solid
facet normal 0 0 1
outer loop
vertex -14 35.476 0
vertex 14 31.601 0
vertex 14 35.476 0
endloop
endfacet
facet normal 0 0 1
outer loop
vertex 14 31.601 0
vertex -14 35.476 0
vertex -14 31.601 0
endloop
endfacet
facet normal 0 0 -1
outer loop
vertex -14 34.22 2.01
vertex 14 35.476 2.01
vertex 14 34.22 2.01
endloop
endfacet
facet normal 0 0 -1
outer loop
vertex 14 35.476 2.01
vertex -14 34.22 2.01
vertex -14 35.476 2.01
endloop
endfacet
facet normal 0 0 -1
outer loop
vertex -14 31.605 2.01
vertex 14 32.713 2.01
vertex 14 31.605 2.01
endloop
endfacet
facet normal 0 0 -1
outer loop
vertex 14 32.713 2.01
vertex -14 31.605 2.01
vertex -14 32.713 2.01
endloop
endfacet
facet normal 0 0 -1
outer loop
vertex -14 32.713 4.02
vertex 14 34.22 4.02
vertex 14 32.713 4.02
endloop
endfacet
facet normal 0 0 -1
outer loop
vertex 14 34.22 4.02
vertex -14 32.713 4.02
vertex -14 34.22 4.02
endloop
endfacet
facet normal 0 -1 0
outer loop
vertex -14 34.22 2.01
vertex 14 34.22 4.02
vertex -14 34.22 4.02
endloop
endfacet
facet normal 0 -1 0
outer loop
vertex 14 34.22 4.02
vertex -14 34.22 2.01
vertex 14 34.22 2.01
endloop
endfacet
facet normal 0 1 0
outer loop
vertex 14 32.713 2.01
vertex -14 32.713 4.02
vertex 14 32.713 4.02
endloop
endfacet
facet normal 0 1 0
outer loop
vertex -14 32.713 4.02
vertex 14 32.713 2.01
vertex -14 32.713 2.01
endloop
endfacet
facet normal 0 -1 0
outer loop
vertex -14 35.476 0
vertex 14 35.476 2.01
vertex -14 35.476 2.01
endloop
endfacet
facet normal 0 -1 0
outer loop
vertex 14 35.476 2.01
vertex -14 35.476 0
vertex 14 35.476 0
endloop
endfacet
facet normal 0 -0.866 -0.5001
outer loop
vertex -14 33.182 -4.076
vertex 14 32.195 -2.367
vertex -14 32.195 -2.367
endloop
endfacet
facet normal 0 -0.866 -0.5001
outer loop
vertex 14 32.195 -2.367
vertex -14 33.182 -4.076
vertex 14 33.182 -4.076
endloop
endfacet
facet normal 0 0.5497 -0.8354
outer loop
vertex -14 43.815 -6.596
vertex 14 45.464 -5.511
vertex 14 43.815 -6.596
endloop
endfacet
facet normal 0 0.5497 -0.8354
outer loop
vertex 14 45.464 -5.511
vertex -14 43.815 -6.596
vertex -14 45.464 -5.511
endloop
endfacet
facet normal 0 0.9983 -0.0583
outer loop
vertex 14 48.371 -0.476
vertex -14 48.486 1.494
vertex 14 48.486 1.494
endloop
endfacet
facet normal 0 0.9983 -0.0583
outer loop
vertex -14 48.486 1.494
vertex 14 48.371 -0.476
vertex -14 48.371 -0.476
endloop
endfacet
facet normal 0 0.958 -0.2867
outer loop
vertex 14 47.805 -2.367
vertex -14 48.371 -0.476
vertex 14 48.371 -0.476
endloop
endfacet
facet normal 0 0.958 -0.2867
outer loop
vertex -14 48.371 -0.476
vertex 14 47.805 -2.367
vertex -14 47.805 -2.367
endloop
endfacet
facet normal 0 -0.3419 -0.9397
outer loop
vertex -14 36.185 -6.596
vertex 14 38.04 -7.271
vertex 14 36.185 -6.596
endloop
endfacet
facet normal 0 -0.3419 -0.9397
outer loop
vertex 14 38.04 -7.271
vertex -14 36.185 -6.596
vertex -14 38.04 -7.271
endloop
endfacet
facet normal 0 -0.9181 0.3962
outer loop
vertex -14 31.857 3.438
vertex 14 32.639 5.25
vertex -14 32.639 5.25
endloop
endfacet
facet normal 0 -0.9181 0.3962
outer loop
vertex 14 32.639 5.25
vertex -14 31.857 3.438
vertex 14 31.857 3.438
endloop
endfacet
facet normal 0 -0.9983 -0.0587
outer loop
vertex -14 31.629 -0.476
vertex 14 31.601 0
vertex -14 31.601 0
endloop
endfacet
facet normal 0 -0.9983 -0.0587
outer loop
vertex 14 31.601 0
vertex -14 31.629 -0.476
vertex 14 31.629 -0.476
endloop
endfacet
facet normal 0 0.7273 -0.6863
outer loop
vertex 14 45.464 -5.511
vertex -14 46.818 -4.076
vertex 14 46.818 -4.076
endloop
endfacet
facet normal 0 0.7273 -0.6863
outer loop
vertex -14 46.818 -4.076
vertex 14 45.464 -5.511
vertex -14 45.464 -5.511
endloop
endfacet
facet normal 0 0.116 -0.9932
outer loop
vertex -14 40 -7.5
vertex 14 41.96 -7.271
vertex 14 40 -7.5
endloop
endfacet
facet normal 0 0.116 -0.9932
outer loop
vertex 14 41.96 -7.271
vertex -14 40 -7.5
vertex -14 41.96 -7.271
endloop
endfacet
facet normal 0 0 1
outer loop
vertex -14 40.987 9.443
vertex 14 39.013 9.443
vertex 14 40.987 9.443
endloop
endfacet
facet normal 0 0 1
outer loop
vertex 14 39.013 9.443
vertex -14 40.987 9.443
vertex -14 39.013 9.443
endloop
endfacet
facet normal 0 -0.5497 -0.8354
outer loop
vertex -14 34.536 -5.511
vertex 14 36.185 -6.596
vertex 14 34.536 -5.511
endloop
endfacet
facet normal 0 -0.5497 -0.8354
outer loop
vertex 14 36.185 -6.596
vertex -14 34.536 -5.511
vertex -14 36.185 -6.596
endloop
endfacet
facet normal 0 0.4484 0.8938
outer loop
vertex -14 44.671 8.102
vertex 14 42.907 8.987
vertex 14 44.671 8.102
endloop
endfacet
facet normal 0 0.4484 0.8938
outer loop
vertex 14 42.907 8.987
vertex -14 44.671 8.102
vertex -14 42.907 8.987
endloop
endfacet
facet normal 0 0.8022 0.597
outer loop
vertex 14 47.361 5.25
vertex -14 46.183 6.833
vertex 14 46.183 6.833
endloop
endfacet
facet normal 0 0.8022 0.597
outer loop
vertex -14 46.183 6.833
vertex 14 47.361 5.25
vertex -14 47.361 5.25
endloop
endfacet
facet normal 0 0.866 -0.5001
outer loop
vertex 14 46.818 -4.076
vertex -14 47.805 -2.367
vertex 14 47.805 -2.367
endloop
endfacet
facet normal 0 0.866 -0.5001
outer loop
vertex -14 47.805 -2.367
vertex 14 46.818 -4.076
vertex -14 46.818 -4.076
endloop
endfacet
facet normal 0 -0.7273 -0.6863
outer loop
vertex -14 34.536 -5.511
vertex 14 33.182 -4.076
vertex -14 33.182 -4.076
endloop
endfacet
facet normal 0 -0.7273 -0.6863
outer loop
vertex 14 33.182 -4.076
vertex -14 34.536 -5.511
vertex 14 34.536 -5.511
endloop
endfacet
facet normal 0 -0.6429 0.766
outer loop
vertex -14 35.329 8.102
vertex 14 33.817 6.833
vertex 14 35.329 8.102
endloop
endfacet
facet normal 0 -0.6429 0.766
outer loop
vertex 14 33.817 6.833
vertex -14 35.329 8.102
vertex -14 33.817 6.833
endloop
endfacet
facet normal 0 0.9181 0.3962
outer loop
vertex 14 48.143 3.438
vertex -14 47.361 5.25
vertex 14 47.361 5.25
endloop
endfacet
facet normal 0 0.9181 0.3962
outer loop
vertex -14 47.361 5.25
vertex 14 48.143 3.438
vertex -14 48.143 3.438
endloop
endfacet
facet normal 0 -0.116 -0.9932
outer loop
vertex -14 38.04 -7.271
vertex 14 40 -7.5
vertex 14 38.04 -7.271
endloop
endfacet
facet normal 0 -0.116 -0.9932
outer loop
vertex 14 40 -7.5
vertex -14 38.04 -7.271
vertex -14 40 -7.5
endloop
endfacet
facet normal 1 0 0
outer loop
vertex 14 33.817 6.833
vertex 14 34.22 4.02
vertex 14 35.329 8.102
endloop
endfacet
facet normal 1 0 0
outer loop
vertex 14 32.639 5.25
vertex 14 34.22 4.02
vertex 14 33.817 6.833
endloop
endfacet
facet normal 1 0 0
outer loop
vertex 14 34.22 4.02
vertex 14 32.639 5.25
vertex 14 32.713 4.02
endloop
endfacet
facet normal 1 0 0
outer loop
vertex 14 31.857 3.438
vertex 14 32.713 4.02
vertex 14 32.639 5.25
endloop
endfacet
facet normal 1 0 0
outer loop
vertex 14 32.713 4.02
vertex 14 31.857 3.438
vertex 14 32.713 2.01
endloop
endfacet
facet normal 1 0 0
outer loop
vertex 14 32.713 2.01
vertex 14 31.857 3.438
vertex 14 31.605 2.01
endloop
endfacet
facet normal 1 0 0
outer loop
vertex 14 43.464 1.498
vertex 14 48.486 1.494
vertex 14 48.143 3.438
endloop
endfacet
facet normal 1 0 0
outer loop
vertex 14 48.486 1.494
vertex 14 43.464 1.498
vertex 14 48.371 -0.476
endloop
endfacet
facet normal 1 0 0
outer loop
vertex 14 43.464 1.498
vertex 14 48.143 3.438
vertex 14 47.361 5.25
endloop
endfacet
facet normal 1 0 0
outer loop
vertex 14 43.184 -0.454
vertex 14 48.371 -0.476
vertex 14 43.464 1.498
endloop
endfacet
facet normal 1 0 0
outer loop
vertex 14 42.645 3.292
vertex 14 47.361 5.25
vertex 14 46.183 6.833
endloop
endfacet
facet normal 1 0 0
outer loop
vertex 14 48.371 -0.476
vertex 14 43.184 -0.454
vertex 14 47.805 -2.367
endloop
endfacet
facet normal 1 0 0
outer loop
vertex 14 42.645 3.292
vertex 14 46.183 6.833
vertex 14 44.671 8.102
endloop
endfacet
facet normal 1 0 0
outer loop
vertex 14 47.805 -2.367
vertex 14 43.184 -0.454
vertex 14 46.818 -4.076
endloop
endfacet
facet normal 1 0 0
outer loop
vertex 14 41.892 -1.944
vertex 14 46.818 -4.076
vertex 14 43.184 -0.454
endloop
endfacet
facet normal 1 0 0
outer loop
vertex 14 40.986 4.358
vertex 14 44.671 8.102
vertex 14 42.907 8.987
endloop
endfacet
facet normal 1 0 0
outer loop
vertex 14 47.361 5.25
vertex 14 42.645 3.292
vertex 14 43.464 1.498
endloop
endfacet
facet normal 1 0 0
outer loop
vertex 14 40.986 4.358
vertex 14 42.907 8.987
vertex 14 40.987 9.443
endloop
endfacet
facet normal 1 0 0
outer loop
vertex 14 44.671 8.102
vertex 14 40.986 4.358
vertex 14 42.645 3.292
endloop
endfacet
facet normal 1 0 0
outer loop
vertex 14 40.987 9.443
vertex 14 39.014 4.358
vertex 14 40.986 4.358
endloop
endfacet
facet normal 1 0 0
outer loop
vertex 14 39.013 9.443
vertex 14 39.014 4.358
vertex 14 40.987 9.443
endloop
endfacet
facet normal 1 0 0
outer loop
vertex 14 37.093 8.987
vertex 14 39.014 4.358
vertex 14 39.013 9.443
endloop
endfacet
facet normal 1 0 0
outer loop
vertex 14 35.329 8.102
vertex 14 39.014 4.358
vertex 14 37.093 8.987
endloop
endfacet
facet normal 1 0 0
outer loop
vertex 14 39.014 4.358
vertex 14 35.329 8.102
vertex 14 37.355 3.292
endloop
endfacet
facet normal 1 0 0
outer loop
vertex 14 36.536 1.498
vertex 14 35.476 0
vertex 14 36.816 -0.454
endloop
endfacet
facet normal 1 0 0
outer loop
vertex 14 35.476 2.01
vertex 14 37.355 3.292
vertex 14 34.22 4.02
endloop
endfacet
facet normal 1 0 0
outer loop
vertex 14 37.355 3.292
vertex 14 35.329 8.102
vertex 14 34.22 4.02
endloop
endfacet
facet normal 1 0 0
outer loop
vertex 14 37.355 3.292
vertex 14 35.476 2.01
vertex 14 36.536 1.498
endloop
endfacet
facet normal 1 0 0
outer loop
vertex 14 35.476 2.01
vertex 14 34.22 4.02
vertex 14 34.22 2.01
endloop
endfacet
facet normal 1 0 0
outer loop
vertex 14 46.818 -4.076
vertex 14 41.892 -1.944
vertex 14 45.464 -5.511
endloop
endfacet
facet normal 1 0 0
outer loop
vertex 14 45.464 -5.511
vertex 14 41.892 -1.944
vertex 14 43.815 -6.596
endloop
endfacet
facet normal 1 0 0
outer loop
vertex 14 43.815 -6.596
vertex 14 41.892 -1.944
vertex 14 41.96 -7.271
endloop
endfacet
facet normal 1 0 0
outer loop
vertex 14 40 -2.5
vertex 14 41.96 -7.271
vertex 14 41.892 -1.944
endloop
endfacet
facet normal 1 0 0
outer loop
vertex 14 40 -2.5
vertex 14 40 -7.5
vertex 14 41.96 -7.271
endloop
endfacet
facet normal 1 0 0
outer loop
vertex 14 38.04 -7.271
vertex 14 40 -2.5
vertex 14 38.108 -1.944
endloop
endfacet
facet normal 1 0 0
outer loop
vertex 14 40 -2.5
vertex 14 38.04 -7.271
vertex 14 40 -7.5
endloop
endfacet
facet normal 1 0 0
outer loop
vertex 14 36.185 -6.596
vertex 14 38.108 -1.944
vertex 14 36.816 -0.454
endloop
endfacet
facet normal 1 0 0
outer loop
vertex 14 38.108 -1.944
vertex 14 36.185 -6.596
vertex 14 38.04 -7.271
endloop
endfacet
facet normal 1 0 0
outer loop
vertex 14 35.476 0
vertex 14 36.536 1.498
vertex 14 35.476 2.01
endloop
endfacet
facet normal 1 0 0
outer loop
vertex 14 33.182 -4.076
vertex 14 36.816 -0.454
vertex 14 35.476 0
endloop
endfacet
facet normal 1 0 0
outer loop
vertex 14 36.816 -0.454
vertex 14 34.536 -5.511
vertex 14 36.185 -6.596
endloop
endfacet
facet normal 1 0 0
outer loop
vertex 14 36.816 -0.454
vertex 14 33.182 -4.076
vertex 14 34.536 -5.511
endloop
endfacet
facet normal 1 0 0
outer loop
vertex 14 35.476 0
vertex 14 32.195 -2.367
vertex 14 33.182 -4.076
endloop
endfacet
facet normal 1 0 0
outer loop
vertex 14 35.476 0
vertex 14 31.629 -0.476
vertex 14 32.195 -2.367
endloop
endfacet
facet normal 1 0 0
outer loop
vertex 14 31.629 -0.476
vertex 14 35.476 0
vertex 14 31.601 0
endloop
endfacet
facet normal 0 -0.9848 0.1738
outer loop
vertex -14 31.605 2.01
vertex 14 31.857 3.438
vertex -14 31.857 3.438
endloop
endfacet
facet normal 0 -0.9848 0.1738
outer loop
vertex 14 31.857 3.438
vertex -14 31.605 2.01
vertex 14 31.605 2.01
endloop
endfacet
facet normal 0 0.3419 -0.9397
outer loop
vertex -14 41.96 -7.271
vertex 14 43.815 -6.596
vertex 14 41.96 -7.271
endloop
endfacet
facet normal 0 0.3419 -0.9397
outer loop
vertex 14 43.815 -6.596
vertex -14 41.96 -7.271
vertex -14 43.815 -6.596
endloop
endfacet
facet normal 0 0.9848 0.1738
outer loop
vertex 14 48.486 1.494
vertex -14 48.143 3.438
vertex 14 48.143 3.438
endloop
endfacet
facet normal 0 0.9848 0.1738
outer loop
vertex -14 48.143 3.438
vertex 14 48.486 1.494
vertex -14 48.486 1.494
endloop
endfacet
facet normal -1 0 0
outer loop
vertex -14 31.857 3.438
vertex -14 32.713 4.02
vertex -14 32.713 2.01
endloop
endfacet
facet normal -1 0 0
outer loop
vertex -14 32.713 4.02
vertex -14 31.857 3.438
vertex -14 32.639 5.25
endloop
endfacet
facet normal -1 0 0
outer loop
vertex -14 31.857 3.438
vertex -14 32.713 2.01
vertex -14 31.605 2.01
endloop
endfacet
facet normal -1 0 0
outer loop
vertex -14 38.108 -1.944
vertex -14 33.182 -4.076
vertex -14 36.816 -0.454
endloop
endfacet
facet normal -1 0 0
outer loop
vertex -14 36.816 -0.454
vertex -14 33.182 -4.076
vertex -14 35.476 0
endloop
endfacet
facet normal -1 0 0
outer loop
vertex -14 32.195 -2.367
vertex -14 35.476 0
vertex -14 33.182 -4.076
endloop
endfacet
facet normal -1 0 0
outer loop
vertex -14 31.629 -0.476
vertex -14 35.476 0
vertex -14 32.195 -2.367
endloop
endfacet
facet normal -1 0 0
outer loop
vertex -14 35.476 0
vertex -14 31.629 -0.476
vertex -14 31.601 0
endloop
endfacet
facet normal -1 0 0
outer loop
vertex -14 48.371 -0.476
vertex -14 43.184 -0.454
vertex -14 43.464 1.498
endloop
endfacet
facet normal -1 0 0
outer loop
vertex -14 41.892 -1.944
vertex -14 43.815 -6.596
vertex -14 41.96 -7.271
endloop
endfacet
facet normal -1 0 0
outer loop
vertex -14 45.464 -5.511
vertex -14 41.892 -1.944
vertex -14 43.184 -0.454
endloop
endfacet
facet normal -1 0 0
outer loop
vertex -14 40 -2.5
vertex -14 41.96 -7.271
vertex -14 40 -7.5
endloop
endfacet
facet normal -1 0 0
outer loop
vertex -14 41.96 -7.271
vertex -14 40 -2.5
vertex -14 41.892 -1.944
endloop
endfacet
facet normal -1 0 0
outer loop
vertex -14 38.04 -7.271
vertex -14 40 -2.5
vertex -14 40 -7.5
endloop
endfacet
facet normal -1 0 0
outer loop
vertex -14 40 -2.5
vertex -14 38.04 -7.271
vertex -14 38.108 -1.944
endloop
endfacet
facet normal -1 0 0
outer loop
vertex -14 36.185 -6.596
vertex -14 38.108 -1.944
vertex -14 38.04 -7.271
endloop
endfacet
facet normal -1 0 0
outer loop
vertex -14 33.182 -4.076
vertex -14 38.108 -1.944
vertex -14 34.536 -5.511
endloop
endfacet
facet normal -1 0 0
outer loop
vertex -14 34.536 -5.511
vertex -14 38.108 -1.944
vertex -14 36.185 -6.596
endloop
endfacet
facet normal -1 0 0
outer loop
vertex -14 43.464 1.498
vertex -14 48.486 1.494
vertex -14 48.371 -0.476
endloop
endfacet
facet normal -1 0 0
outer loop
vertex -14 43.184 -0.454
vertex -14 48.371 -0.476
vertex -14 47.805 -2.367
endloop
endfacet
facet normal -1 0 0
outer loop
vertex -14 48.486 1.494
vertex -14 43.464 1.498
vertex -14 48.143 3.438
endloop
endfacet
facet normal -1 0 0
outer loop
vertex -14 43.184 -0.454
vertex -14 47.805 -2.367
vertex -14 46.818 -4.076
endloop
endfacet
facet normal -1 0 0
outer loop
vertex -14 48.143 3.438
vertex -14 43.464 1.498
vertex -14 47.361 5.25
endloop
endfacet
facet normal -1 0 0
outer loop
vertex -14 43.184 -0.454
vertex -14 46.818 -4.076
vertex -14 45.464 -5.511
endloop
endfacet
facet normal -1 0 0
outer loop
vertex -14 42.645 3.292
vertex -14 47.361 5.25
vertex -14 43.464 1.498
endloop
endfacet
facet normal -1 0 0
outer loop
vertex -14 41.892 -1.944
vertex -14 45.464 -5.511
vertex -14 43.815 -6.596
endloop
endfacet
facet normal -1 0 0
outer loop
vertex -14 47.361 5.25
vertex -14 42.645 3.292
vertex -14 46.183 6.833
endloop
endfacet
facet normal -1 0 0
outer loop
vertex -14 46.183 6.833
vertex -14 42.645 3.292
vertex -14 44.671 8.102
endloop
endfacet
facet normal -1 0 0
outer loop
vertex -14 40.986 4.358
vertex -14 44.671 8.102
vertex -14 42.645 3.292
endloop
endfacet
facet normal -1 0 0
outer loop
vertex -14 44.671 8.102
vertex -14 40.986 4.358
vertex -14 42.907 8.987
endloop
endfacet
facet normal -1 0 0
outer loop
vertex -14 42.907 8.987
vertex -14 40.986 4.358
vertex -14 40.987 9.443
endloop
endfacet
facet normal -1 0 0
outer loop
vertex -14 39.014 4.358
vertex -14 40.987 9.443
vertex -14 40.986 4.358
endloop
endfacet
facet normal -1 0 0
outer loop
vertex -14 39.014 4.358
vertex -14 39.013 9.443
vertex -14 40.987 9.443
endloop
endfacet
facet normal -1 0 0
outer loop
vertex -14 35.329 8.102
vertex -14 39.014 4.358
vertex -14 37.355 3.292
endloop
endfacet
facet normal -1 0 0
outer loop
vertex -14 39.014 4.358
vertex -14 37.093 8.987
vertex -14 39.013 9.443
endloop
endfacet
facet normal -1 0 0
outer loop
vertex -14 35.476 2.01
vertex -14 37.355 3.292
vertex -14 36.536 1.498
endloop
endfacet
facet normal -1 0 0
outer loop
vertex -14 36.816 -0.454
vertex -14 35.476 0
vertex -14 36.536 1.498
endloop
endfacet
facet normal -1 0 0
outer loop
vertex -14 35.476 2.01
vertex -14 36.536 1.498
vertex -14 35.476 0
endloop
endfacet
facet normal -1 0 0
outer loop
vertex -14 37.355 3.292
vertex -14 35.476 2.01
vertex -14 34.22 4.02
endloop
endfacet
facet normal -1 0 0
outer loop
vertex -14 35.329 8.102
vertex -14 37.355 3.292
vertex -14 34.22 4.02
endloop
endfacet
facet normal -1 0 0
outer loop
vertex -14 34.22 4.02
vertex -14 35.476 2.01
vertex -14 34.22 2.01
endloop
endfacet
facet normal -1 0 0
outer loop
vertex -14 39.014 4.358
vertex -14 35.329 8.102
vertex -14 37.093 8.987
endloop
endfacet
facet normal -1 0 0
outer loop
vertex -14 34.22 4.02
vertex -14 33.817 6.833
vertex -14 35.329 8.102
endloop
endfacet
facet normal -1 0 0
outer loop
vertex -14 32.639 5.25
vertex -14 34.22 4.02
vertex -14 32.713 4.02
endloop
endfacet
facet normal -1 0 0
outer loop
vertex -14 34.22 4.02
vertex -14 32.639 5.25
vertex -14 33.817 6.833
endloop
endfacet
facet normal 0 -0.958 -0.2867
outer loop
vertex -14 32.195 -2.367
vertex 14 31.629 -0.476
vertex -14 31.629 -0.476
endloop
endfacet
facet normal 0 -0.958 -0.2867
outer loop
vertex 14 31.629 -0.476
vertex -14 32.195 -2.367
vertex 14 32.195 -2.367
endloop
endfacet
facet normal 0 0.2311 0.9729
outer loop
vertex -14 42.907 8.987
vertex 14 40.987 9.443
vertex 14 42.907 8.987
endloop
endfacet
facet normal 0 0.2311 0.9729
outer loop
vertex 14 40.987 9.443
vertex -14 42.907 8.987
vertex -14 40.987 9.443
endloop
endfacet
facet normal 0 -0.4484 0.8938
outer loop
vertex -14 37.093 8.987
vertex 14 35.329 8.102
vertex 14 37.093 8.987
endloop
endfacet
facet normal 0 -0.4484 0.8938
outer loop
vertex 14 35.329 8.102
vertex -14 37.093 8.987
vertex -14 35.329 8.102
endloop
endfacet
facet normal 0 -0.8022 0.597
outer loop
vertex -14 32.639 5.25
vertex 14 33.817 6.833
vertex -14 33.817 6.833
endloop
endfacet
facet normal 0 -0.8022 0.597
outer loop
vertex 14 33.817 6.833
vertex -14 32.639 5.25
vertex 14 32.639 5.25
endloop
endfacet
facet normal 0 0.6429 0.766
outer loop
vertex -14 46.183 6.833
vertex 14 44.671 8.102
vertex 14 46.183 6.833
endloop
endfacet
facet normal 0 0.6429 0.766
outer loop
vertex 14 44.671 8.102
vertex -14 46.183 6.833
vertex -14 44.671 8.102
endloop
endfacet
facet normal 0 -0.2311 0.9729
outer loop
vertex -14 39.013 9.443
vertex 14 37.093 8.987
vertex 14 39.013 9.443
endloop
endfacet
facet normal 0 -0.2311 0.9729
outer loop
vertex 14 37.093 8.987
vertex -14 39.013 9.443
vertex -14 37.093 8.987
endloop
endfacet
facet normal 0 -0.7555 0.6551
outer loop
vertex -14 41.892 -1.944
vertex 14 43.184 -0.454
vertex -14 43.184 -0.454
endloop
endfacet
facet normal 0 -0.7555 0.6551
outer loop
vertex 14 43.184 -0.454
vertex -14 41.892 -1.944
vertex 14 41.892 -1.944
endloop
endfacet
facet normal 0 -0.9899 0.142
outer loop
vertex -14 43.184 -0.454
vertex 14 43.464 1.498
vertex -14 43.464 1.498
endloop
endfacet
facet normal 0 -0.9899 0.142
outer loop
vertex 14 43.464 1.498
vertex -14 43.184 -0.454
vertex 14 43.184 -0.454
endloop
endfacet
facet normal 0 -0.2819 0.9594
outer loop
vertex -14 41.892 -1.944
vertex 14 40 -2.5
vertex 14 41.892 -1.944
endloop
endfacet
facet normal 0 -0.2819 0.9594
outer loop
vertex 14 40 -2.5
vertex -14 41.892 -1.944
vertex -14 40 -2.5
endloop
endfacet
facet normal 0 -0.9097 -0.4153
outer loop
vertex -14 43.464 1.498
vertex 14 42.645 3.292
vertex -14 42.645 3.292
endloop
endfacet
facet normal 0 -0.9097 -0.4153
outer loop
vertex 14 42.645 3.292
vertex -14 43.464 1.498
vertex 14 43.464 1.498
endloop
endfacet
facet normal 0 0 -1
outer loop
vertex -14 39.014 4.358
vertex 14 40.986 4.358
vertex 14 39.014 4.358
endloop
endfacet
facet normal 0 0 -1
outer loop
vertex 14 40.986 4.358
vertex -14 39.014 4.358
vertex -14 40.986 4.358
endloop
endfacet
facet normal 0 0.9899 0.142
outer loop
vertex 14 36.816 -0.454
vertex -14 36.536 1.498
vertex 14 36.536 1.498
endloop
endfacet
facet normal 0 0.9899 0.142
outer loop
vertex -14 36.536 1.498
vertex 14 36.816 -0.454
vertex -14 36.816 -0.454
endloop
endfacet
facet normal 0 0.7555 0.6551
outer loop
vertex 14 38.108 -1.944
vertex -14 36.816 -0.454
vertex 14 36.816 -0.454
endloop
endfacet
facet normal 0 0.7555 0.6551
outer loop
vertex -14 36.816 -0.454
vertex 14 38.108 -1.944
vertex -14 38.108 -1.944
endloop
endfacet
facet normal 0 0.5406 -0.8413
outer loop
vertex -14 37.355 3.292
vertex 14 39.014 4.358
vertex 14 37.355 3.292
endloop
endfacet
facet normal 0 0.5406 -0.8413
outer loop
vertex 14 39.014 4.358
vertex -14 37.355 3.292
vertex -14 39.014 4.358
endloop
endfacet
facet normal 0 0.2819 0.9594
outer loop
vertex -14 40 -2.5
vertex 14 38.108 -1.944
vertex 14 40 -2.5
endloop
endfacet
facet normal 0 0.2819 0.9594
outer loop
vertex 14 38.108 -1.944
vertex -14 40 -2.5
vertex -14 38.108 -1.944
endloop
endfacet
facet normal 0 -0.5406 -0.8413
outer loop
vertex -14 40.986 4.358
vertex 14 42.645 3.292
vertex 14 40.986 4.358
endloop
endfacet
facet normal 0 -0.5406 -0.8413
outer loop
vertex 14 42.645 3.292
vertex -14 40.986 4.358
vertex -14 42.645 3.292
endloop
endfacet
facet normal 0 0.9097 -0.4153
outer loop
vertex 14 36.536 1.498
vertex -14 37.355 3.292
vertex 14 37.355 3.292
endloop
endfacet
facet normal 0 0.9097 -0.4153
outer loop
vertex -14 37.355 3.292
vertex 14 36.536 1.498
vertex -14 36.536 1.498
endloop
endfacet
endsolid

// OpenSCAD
module target()
{
    cylinder(r=40,h=2);
    cylinder(r=30,h=2.5);
    cylinder(r=20,h=3);
    cylinder(r=10,h=3.5);
    translate([-15,39.25,0]) cube([30,1.5,4]);
    translate([-15,38,0]) cube([30,4,2]);
    
}

module mount()
{
    difference(){
       rotate([0,90,0]) translate([-1,40,-14]) cylinder(r=8.5,h=28);
       rotate([0,90,0]) translate([-1,40,-15]) cylinder(r=3.5,h=30);
       scale([1.005,1.005,1.005]) translate([0,-6.7,0])  target();
       }
}

mount();
